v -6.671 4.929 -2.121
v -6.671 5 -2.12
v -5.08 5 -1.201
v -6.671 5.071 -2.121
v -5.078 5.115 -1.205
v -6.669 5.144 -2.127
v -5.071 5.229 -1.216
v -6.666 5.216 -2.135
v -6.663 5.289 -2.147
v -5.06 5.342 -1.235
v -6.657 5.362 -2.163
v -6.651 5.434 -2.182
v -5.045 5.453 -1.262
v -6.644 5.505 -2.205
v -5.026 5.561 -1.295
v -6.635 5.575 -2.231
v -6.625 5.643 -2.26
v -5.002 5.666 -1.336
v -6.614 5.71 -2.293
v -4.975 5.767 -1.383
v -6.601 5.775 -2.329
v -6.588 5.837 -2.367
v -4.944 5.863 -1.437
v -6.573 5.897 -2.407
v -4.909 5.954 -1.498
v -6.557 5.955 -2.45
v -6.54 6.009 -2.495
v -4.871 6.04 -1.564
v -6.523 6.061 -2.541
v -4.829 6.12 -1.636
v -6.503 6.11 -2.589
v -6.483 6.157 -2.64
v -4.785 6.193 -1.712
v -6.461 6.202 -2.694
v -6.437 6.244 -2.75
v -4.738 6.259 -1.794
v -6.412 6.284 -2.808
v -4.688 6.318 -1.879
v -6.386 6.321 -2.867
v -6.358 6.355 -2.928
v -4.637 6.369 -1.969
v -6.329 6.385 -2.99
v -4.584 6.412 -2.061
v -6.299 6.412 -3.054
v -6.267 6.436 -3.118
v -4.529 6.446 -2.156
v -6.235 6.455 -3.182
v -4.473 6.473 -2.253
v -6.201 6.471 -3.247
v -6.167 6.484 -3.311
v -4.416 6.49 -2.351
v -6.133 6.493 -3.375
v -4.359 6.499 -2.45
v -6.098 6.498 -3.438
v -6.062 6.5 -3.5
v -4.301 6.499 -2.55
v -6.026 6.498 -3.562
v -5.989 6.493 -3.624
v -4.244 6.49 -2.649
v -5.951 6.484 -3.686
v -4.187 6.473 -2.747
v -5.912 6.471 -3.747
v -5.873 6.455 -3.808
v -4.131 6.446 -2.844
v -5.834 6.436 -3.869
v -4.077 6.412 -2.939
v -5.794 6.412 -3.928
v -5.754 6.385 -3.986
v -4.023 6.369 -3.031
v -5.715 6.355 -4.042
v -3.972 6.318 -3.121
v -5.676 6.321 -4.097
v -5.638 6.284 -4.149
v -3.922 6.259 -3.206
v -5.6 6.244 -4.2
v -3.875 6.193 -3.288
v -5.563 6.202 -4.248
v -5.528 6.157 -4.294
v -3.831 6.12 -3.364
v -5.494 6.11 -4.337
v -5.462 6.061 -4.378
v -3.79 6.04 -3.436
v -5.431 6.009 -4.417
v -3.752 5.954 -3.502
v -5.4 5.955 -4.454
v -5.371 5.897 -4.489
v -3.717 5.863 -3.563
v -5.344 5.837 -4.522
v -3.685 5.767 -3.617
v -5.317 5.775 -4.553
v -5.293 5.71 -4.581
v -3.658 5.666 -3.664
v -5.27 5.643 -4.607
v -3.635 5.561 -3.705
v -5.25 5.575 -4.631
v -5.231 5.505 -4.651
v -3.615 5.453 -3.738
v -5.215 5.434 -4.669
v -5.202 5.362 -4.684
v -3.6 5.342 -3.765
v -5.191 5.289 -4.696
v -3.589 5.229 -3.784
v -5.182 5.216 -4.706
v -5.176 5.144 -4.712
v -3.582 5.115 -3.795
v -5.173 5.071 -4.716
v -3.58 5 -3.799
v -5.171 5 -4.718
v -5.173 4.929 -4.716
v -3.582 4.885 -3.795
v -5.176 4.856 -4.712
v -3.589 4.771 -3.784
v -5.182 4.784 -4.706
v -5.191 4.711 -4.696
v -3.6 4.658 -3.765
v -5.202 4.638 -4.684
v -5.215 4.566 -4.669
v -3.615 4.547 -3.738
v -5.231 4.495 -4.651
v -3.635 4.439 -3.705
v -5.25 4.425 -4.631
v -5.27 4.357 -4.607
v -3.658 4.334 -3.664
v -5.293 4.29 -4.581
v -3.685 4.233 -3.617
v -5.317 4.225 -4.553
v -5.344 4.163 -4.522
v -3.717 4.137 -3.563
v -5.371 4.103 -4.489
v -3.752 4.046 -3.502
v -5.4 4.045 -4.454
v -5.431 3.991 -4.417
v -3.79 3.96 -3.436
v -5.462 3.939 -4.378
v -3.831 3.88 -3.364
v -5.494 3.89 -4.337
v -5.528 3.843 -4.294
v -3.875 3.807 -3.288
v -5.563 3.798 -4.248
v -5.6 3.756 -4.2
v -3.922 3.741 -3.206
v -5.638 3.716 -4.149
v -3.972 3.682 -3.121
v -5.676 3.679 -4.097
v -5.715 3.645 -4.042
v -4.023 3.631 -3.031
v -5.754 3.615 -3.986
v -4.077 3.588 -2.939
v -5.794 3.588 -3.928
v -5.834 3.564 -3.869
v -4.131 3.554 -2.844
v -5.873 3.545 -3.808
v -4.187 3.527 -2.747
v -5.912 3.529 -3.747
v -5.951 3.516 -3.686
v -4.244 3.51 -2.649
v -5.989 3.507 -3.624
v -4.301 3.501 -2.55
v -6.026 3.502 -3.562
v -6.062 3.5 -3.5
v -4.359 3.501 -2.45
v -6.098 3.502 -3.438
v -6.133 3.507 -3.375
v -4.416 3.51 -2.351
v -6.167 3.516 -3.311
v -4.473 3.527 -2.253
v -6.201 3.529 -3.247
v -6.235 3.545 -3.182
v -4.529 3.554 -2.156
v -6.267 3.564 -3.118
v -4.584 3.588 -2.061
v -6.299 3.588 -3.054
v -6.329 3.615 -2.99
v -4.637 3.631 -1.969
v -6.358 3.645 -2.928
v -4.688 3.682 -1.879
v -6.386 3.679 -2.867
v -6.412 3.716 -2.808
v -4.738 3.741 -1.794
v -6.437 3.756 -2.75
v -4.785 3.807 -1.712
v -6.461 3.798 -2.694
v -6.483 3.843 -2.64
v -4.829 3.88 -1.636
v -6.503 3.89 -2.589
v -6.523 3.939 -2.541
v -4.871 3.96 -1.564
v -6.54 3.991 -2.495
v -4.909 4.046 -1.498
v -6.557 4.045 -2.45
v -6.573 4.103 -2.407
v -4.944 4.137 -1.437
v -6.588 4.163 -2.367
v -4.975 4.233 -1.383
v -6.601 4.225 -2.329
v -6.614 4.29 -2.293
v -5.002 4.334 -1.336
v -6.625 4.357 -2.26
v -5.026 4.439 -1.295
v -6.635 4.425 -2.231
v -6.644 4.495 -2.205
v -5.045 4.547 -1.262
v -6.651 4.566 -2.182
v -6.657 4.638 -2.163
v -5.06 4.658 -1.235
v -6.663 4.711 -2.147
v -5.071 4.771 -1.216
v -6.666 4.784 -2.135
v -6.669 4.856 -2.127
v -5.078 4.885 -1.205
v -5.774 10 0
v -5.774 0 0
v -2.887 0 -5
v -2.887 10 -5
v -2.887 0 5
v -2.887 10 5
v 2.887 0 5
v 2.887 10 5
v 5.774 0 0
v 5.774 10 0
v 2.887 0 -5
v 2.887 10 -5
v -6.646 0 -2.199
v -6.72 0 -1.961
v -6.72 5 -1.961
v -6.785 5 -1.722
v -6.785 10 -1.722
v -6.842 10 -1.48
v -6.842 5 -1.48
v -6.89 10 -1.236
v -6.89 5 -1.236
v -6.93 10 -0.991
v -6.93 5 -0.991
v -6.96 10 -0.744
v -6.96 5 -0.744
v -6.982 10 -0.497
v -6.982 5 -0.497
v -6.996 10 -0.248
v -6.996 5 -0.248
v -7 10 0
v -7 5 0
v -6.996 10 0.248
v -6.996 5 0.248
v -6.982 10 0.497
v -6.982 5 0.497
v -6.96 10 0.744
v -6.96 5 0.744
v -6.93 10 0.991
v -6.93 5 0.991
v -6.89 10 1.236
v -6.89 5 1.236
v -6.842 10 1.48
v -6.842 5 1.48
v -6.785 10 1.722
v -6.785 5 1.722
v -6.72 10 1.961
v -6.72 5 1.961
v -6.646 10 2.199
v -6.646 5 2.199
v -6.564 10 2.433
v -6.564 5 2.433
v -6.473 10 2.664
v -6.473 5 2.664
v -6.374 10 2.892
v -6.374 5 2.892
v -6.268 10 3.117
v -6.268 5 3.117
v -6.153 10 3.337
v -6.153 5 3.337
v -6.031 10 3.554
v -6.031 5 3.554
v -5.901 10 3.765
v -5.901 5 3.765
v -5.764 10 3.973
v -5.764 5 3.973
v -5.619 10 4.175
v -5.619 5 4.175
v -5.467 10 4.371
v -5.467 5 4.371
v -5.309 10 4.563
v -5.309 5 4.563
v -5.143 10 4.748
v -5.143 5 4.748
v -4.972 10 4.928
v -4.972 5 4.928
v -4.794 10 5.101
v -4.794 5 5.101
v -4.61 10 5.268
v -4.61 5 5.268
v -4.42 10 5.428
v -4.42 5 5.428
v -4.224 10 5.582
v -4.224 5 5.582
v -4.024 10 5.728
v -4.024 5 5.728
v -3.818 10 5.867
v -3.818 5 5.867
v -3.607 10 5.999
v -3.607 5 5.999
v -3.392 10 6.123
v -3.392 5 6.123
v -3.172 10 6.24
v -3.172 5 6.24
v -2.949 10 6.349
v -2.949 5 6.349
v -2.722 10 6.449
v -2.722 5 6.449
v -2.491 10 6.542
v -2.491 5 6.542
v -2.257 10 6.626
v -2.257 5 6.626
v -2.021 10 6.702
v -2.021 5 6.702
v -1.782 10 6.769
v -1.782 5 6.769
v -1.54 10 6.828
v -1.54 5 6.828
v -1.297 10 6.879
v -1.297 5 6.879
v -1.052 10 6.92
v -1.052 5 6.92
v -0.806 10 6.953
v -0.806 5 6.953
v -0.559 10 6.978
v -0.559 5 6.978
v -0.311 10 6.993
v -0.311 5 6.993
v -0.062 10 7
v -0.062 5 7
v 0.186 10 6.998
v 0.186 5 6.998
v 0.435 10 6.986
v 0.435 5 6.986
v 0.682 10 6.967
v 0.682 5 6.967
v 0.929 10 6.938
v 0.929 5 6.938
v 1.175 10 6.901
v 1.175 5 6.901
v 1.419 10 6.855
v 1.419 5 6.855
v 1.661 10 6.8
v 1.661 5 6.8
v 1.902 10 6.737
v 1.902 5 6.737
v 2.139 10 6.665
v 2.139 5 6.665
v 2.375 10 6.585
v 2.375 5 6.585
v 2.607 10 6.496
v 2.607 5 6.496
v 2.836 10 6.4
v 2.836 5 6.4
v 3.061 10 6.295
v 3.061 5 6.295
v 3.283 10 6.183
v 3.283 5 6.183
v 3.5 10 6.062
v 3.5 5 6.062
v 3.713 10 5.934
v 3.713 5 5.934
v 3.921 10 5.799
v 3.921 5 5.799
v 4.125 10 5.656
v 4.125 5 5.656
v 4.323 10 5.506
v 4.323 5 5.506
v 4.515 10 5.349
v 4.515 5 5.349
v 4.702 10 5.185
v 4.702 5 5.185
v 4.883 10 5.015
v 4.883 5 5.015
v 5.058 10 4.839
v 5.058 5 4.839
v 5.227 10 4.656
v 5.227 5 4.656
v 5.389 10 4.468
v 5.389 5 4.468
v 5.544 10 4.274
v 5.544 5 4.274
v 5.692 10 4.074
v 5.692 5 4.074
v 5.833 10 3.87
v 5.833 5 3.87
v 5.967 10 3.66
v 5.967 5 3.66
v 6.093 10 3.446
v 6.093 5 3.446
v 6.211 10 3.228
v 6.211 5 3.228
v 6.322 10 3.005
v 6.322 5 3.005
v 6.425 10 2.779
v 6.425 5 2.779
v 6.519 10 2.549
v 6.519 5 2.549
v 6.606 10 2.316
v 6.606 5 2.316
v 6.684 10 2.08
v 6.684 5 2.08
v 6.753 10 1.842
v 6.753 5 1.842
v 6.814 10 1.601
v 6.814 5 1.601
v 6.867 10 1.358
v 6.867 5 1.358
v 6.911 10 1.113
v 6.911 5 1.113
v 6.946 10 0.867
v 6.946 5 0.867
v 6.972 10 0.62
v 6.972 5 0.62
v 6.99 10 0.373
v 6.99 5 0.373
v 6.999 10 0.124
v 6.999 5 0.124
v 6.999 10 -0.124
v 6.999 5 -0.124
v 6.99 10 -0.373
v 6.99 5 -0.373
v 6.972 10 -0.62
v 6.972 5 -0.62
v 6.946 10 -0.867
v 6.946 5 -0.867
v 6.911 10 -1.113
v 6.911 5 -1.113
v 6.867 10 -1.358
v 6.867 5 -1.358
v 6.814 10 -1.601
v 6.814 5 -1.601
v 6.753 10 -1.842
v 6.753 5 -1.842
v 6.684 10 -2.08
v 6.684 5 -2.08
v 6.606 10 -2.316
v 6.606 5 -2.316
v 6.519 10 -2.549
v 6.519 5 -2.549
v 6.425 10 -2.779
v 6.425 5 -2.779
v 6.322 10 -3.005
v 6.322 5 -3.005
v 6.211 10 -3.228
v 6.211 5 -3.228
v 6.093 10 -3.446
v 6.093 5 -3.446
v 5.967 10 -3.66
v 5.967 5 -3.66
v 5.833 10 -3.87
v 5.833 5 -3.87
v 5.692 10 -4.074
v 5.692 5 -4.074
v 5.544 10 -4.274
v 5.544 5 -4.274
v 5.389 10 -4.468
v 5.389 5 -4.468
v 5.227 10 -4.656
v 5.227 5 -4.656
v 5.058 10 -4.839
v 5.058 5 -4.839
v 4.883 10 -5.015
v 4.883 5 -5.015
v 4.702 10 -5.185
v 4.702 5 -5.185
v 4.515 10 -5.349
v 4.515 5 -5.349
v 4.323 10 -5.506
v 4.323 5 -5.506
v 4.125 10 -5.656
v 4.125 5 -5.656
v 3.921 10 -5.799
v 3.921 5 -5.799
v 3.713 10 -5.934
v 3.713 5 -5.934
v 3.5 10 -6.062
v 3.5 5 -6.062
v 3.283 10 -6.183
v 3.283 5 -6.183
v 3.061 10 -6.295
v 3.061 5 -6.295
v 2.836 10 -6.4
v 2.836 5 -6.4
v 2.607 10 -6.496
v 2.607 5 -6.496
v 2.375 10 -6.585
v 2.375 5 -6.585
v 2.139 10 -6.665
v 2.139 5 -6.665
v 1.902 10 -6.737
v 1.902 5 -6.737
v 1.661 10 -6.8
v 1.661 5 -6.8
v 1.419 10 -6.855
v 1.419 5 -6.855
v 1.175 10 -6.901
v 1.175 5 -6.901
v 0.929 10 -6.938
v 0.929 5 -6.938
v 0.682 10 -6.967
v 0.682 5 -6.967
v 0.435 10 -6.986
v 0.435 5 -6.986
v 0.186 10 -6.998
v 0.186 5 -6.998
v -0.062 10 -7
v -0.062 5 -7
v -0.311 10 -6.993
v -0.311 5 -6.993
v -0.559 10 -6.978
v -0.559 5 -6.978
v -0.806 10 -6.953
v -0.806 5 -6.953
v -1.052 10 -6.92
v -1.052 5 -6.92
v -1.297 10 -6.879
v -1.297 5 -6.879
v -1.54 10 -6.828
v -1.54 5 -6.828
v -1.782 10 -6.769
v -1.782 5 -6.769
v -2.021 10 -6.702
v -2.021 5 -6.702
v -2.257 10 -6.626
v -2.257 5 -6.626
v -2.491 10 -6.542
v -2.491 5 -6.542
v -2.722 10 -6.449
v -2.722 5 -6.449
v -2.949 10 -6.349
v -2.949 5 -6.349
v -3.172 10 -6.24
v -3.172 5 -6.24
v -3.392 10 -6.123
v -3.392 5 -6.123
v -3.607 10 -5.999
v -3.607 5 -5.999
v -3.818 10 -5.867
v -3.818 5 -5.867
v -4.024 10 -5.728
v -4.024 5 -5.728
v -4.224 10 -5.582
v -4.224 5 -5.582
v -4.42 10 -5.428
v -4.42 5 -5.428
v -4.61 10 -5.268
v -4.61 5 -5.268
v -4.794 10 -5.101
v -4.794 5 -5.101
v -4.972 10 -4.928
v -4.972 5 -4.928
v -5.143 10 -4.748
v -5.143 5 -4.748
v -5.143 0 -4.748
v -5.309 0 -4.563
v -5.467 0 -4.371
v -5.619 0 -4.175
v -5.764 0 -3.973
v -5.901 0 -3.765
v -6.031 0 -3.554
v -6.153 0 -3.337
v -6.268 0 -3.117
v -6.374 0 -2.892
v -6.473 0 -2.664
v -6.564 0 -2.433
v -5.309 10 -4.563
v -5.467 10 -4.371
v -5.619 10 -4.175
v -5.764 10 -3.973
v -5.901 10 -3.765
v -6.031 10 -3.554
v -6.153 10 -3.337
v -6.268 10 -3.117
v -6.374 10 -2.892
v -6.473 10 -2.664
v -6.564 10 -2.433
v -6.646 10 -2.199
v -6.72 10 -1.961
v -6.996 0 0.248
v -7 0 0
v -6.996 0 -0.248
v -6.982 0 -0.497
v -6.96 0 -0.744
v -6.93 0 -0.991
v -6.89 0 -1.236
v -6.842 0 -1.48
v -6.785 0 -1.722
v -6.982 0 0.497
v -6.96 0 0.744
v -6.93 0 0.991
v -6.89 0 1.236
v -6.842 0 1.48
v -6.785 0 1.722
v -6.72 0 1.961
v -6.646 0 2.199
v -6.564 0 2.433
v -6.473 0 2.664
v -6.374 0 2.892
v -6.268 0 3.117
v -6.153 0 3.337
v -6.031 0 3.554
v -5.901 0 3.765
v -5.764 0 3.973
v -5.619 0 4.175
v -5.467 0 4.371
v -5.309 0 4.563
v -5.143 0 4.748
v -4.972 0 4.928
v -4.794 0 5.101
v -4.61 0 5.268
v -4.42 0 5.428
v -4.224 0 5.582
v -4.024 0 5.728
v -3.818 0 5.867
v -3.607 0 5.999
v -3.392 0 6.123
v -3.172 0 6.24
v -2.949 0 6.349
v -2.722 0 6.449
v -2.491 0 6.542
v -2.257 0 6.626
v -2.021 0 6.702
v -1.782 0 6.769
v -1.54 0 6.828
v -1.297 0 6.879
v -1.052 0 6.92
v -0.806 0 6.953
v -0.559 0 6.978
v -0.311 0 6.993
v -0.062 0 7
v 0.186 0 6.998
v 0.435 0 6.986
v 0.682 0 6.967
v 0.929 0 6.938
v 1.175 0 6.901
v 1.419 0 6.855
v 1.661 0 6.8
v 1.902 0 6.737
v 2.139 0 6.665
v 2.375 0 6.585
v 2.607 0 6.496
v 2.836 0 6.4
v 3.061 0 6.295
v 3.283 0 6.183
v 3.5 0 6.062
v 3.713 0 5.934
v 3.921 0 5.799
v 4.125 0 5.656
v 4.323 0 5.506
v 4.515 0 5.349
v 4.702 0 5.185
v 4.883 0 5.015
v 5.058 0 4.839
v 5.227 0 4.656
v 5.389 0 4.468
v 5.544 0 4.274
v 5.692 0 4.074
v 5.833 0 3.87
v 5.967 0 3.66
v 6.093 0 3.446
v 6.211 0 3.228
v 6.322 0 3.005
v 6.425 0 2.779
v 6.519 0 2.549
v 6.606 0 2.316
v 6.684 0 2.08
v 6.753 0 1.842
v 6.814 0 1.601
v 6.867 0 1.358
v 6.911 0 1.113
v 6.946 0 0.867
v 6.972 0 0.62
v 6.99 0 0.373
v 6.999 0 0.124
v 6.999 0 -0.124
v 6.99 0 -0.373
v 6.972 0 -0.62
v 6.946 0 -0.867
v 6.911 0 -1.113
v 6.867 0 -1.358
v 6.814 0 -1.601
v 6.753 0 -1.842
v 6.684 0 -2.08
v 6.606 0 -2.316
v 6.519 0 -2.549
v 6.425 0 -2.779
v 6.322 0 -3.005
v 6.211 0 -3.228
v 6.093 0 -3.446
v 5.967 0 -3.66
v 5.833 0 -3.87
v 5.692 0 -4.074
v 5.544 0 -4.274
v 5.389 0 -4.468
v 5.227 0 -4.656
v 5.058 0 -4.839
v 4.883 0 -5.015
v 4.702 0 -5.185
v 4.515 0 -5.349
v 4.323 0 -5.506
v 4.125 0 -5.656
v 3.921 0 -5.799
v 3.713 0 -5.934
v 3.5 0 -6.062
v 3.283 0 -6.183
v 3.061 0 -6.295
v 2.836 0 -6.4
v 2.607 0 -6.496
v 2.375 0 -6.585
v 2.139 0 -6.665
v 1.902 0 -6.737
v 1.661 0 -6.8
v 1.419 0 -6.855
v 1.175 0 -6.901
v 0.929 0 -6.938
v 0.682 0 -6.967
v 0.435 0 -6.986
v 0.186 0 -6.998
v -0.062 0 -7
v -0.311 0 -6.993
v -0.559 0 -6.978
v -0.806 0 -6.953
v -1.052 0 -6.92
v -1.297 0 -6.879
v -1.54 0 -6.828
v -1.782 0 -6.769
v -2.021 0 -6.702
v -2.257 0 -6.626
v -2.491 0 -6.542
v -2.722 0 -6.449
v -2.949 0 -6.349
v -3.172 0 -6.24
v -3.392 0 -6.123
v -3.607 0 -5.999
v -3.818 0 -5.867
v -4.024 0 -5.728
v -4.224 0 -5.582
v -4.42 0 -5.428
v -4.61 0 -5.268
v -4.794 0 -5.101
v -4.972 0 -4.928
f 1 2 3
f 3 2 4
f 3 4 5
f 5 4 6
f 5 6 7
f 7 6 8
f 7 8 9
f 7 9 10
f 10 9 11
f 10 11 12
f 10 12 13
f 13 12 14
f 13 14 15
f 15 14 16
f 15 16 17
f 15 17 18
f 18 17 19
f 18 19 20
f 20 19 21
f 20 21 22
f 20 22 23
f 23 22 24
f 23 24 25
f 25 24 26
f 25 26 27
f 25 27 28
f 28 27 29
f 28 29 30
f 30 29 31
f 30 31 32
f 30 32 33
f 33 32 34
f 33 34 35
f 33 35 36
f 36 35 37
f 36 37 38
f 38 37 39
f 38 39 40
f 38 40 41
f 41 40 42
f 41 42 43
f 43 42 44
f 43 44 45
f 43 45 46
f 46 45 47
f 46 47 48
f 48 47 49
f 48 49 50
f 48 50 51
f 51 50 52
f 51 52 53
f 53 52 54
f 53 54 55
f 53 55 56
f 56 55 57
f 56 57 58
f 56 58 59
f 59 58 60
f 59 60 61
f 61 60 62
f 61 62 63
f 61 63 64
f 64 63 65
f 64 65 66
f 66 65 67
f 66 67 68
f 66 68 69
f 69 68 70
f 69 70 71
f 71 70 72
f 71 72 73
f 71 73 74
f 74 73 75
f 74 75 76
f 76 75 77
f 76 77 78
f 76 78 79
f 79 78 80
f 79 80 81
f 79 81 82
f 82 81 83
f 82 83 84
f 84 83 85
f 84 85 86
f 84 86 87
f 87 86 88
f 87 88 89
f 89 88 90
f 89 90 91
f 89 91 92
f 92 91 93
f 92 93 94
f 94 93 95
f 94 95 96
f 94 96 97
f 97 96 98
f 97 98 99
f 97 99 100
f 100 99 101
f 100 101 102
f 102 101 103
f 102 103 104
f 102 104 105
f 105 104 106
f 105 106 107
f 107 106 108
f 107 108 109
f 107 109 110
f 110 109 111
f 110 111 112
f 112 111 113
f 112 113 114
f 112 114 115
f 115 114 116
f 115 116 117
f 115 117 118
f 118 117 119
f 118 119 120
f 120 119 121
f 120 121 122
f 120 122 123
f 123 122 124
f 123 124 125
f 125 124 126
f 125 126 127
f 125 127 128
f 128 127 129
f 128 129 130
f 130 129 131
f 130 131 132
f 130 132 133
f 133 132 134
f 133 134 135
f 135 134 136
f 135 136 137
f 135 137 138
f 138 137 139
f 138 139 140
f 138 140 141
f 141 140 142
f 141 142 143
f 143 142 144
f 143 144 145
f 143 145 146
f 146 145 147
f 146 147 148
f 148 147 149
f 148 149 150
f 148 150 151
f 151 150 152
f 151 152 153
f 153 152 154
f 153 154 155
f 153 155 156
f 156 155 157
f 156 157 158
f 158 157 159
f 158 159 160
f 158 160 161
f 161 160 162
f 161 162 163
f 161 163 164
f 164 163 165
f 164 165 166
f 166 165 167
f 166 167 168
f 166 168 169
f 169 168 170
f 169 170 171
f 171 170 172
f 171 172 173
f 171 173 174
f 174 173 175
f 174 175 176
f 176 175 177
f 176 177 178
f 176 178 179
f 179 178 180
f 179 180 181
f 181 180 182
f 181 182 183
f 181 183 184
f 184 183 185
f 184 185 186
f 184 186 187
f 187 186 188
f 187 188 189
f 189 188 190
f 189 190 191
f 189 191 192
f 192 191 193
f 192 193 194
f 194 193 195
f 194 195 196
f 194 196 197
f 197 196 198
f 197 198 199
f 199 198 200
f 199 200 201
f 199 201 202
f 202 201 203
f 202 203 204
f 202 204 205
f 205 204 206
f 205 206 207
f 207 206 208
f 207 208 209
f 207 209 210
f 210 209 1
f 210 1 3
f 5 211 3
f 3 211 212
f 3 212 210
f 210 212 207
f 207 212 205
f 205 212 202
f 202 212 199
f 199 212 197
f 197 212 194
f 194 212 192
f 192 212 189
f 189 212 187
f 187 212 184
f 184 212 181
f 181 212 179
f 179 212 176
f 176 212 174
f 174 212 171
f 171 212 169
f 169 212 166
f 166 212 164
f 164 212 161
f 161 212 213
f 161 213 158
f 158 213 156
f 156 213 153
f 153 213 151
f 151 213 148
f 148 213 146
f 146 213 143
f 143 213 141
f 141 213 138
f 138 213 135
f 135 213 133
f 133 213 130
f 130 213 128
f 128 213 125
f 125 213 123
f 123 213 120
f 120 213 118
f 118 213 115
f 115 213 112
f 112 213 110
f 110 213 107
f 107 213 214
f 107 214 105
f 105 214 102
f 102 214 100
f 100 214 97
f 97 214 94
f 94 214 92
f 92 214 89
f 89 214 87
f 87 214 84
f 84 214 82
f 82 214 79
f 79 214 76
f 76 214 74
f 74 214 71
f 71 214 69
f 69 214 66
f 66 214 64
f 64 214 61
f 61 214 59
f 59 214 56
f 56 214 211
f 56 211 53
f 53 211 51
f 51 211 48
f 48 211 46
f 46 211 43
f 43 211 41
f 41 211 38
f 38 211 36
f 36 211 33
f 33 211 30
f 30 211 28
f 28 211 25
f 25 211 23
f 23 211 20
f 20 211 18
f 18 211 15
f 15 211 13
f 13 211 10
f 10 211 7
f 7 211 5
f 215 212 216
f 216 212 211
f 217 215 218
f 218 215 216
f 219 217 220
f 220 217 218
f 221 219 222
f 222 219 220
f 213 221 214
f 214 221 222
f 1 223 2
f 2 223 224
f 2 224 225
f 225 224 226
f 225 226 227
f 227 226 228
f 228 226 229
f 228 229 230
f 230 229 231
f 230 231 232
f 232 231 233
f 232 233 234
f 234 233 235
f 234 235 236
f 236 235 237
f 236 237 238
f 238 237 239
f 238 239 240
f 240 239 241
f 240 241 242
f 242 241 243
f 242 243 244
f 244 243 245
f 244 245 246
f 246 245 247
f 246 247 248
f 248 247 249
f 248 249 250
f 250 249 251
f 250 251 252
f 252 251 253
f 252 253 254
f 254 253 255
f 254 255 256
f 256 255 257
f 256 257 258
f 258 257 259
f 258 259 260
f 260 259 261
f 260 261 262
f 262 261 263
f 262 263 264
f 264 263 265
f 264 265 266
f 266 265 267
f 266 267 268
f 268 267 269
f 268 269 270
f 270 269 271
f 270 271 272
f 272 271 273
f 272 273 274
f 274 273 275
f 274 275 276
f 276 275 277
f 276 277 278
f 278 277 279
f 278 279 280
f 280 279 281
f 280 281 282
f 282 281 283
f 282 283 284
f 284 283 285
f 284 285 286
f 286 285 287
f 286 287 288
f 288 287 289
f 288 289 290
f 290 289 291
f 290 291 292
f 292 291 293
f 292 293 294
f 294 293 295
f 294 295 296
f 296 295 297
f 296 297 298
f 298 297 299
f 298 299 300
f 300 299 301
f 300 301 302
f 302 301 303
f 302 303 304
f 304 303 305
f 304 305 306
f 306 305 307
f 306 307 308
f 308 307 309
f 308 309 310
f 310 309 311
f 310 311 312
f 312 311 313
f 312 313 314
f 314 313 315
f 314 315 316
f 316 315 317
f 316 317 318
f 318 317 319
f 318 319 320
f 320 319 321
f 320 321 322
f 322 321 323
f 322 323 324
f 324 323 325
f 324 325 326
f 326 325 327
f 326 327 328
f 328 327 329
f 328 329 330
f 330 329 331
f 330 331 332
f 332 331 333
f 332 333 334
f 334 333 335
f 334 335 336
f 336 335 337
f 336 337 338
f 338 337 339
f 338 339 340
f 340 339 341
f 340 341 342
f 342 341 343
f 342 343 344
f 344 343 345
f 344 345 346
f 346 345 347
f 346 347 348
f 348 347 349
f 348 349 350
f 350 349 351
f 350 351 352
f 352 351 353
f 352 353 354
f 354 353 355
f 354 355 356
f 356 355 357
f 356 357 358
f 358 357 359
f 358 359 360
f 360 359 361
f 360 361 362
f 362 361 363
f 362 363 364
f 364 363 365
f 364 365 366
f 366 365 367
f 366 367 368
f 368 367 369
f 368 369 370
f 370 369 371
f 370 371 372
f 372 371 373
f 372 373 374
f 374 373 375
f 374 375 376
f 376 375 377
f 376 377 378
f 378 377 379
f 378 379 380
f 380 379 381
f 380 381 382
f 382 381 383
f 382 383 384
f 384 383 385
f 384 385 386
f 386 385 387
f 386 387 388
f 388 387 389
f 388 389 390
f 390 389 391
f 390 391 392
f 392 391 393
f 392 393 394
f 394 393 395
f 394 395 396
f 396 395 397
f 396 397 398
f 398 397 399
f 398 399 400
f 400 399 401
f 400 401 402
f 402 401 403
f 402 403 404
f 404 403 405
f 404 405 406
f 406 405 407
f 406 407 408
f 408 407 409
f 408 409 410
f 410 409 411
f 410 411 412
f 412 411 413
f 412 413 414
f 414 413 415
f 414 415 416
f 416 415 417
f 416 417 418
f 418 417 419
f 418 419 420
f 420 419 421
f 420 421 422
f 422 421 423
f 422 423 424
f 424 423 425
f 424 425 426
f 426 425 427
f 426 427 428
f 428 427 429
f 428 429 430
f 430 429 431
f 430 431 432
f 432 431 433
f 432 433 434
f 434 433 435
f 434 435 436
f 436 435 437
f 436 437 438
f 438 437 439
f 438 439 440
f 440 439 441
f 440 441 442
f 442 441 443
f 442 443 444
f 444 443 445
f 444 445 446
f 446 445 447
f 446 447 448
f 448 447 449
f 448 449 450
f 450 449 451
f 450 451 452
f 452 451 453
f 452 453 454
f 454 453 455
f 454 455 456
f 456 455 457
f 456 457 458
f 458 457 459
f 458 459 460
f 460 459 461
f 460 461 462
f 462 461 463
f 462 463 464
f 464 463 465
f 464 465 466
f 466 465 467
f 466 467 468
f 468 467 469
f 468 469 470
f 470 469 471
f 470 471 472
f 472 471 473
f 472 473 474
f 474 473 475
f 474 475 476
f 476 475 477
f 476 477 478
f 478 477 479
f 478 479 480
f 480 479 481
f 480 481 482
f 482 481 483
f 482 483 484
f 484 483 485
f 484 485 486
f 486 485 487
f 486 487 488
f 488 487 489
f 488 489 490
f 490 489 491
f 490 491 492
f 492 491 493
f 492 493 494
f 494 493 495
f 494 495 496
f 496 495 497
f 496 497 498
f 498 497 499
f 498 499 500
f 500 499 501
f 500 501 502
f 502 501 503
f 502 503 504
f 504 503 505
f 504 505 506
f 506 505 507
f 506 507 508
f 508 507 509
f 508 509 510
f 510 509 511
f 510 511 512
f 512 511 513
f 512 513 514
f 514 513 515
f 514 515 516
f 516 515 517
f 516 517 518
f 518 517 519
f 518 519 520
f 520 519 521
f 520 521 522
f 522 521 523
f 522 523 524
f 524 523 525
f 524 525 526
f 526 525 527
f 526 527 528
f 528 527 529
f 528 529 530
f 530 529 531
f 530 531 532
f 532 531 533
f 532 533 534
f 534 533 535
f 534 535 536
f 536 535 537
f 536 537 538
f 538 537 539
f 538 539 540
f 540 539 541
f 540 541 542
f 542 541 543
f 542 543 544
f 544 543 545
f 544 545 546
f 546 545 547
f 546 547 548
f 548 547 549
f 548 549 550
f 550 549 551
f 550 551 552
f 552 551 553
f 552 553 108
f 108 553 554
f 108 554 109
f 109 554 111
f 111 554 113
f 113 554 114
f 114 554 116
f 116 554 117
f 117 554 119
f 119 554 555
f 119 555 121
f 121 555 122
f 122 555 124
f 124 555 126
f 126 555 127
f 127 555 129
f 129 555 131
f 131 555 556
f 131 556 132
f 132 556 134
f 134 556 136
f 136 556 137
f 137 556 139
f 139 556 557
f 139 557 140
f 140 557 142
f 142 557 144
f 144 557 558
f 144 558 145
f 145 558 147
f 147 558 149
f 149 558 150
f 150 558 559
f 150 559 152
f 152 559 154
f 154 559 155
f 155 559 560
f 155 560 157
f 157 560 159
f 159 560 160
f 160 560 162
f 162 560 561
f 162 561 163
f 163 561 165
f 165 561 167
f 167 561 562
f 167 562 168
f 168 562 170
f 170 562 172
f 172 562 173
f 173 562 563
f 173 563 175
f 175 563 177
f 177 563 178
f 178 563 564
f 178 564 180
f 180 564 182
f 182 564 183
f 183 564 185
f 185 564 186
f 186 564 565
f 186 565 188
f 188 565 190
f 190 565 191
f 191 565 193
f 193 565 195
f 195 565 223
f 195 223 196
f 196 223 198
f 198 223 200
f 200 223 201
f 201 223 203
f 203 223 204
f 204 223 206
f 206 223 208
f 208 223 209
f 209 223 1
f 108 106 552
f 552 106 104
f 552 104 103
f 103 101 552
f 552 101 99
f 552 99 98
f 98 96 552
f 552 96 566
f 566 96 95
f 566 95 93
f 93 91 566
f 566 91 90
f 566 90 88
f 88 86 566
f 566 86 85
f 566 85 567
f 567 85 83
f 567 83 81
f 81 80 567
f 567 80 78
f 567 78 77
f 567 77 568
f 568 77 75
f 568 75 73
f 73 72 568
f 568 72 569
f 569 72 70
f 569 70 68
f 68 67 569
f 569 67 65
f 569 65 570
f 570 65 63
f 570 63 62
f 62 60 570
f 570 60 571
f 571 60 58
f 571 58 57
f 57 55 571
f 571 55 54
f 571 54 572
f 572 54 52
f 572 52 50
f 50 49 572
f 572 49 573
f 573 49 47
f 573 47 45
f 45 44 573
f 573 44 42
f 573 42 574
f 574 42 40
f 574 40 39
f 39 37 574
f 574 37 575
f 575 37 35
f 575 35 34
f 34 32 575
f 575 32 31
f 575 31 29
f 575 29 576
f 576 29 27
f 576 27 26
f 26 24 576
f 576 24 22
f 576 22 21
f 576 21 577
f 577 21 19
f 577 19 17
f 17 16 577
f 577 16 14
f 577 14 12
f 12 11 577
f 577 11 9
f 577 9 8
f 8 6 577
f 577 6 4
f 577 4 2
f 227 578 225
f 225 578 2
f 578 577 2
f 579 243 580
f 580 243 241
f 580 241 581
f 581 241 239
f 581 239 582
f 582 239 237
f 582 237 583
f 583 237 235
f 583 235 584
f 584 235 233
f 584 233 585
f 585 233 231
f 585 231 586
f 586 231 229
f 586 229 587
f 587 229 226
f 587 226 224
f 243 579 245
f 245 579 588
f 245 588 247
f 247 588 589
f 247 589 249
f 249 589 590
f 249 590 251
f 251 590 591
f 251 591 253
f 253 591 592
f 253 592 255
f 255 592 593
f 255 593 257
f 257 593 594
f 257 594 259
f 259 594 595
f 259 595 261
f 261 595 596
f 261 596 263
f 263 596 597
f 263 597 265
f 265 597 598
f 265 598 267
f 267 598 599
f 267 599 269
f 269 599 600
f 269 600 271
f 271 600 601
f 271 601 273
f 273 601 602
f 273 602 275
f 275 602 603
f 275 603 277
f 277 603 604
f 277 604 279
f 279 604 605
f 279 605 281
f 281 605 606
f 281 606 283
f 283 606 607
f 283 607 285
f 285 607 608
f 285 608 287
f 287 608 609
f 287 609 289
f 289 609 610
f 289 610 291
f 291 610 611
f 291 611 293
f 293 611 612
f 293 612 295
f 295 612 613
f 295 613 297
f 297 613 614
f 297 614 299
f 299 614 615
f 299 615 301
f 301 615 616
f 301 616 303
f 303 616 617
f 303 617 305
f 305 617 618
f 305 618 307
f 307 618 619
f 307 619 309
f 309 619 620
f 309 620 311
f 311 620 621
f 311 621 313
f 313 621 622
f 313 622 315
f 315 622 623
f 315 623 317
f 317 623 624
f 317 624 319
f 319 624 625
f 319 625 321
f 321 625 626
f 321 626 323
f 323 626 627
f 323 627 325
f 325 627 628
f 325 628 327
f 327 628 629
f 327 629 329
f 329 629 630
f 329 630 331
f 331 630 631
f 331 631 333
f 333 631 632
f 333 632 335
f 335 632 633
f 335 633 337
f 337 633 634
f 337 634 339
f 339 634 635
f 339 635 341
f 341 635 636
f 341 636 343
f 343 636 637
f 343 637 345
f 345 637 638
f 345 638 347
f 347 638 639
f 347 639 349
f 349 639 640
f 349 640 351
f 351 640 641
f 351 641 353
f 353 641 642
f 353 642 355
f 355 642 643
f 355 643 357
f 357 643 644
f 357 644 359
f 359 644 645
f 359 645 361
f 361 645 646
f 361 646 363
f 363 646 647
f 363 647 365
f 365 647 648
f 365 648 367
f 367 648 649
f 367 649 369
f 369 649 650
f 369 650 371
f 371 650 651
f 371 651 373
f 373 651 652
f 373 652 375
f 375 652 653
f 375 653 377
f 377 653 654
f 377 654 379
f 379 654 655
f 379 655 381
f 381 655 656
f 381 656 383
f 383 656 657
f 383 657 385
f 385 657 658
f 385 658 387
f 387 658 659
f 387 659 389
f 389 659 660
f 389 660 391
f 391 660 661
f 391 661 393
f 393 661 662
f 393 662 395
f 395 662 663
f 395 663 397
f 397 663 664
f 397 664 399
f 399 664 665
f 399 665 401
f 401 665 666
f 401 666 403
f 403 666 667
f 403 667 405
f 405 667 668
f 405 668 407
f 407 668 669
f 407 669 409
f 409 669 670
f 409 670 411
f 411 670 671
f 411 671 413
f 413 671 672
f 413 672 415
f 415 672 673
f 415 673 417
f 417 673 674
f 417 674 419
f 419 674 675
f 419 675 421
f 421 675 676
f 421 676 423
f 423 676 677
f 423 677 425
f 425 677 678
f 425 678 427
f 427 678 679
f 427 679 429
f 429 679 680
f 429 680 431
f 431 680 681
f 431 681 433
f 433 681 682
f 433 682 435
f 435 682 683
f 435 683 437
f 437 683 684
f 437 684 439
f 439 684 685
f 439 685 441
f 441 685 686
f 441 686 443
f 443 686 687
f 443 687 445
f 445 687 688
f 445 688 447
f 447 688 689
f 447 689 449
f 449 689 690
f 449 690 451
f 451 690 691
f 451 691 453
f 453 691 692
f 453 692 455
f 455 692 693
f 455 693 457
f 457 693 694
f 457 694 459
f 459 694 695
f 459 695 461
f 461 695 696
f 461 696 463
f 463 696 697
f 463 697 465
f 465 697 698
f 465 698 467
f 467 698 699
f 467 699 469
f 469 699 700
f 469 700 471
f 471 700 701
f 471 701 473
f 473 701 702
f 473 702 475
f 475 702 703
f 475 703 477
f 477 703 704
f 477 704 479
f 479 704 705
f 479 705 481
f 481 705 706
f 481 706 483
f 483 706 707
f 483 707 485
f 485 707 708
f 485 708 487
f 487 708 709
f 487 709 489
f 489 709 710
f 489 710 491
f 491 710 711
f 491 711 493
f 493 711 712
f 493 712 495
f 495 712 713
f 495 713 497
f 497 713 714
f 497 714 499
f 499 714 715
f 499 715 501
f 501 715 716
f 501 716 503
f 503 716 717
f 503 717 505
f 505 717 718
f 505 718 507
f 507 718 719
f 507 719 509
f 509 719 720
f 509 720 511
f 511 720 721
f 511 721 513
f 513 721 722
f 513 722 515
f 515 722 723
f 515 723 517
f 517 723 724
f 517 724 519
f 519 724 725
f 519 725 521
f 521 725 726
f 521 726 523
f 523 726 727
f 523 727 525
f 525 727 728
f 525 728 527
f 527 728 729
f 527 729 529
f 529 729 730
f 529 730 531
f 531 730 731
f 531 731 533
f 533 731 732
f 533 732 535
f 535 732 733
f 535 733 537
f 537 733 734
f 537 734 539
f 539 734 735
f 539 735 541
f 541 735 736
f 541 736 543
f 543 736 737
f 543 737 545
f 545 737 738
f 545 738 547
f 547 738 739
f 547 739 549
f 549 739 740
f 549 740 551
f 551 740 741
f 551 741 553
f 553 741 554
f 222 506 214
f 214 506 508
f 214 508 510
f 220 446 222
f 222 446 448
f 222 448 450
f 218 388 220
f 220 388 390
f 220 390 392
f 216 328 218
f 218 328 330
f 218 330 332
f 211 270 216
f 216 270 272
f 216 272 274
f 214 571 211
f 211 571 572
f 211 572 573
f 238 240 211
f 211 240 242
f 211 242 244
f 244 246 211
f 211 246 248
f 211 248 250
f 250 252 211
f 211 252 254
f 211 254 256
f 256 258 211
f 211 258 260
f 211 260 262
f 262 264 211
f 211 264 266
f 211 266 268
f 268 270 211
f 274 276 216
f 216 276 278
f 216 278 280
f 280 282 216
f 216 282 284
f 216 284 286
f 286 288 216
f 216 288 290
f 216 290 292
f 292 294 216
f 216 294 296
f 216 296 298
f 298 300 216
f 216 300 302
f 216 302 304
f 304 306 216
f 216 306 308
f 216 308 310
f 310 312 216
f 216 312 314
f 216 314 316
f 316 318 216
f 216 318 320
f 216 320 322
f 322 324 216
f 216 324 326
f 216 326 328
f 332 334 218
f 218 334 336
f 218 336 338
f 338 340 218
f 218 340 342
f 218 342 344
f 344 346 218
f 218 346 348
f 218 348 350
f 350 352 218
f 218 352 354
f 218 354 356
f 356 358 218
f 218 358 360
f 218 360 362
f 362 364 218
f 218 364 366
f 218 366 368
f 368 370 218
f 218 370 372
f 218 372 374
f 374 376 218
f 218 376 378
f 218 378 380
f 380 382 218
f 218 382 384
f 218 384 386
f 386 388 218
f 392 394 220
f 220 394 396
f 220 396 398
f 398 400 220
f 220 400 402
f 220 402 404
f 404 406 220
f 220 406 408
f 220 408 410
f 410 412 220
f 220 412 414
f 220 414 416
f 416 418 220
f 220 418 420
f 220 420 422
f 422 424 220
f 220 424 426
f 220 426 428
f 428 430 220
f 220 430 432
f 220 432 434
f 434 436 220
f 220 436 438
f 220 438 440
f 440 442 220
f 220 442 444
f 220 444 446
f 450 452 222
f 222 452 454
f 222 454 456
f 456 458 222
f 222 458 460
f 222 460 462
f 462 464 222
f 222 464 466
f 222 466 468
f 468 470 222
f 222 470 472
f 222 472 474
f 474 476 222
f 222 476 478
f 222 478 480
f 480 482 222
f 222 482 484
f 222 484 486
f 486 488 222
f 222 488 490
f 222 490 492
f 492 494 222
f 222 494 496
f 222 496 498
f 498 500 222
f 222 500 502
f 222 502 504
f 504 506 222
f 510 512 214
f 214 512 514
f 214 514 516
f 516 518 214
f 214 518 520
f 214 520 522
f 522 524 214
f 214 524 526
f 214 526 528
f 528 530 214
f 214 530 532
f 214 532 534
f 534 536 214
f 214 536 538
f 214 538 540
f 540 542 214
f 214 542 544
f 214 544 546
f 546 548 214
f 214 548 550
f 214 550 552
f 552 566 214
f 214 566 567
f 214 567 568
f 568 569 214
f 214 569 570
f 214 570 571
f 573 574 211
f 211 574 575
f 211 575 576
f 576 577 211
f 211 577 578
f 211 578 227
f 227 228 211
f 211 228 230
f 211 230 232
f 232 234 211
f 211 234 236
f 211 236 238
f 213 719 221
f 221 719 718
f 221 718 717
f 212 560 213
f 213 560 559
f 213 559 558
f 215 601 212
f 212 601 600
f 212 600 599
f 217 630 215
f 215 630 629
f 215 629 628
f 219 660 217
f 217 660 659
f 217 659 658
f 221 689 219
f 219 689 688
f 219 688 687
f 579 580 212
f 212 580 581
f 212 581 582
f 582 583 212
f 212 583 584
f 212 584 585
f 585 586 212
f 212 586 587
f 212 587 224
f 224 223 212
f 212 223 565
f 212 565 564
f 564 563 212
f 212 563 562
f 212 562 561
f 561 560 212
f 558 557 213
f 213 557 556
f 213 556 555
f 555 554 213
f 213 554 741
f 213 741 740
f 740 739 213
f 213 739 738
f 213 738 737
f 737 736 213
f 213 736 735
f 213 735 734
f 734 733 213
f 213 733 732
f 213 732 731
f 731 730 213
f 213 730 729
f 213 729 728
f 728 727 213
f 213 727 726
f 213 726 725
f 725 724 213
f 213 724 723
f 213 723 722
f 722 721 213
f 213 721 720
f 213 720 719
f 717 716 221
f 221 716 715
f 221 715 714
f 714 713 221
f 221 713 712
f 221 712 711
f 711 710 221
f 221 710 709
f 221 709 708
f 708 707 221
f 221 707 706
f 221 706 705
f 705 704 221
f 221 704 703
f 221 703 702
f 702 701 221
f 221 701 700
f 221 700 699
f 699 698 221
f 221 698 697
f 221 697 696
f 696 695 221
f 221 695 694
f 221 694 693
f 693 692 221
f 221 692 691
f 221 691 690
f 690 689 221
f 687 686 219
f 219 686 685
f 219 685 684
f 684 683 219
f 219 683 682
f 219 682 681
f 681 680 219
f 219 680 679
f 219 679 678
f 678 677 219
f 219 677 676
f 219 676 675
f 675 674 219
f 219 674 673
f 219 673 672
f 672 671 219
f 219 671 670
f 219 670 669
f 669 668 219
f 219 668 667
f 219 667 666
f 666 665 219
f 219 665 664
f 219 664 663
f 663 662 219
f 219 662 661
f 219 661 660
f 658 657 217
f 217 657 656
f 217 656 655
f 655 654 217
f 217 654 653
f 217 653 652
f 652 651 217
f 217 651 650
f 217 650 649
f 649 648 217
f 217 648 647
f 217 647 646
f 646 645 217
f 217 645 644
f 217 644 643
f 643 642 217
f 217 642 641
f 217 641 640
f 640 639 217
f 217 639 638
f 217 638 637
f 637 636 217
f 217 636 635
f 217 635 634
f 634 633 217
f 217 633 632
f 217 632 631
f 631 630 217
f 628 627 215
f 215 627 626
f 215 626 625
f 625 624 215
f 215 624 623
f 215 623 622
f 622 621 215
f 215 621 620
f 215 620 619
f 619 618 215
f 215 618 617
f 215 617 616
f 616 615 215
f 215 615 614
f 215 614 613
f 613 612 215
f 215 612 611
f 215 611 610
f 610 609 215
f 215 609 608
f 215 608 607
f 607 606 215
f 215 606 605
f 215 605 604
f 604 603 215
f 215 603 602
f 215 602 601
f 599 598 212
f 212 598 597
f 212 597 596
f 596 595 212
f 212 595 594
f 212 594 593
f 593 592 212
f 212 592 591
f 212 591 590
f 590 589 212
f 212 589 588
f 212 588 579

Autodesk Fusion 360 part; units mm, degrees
sketch "Sketch1" plane through (0, 0, 0) normal (0, 1, 0) x (1, 0, 0)
  line L0 (-2.8868, 5) -> (-5.7735, 0)
  line L1 (-5.7735, 0) -> (-2.8868, -5)
  line L2 (-2.8868, -5) -> (2.8868, -5)
  line L3 (2.8868, -5) -> (5.7735, 0)
  line L4 (5.7735, 0) -> (2.8868, 5)
  line L5 (2.8868, 5) -> (-2.8868, 5)
  circle A0 centre (0, 0) radius 7
  dimension "d1" = 5
  dimension "d2" = 14
extrude "Extrude1" add sketch "Sketch1" along normal blind 10
sketch "Sketch2" plane through (-4.3301, 0, -2.5) normal (0.866, 0, 0.5) x (0.5, 0, -0.866)
  line L0 (-2.8868, 0) -> (2.8868, 0)
  line L1 (2.8868, 0) -> (2.8868, 10)
  line L2 (2.8868, 10) -> (-2.8868, 10)
  line L3 (-2.8868, 10) -> (-2.8868, 0)
  circle A0 centre (0, 5) radius 1.5
  dimension "d5" = 3
  dimension "d6" = 5
extrude "Extrude2" cut sketch "Sketch2" against normal through all contours A0
